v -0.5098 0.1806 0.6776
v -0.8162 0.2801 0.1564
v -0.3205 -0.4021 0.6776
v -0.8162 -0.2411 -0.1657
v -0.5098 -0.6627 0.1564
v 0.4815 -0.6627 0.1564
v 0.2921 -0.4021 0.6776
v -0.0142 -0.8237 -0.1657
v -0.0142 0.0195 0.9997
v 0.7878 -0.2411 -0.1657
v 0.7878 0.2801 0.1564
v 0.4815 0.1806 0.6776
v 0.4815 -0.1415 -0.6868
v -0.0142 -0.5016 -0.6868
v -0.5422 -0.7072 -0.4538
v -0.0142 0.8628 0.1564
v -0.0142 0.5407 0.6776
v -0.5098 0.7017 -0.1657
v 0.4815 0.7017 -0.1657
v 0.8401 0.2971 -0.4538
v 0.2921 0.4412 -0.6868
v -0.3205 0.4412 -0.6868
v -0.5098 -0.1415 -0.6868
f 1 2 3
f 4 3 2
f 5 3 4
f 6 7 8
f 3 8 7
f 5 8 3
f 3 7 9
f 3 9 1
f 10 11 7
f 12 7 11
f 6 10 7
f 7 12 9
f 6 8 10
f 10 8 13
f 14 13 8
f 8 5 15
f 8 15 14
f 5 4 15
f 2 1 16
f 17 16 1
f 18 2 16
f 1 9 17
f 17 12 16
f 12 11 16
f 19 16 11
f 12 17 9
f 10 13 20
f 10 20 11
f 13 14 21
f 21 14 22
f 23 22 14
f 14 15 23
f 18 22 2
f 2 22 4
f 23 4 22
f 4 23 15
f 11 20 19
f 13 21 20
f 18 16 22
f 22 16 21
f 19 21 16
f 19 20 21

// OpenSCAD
polyhedron( points = [[-0.320523204791546, -0.402106263908833, 0.677608689794352], [0.29214730149451, -0.402106263908833, 0.677608689794352], [0.481472899895118, -0.662690594621077, 0.156440028312254], [-0.0141879516605588, -0.823740567911962, -0.165659918305121], [-0.509848803154847, -0.662690594610315, 0.156440028333778], [-0.509848803178246, 0.180578013518584, 0.677608689794352], [0.481472899787612, 0.180578013518584, 0.677608689794352], [0.787808152994891, -0.241056290554518, -0.16565991833097], [-0.0141879517371138, -0.501640621267269, -0.686828579692436], [-0.81618405625893, -0.241056290606746, -0.165659918313784], [-0.8161840562537, 0.280112370962389, 0.156440028383909], [-0.0141879517242385, 0.540696701663695, 0.677608689794352], [0.787808152966046, 0.280112370849817, 0.156440028316686], [0.481472899777148, -0.141521933125471, -0.686828579757612], [-0.509848803202996, -0.14152193319768, -0.686828579697791], [-0.509848802991106, 0.701746674944526, -0.165659918181239], [-0.0141879514175785, 0.862796648191556, 0.156440028500799], [0.481472899777277, 0.701746674869223, -0.165659918235963], [0.292147301362225, 0.44116234420059, -0.68682857964969], [-0.320523204949794, 0.441162344175661, -0.686828579531837], [-0.0141879516326369, 0.0195280401935779, 0.999708636390958], [0.84013646125298, 0.297114868983396, -0.453754868803271], [-0.542189476354515, -0.707203712358896, -0.453754868710433]], faces = [[0, 5, 10, 9, 4], [0, 4, 3, 2, 1], [0, 1, 20], [0, 20, 5], [1, 2, 7, 12, 6], [1, 6, 20], [2, 3, 8, 13, 7], [3, 4, 22], [3, 22, 8], [4, 9, 22], [5, 11, 16, 15, 10], [5, 20, 11], [6, 12, 17, 16, 11], [6, 11, 20], [7, 13, 21], [7, 21, 12], [8, 14, 19, 18, 13], [8, 22, 14], [9, 10, 15, 19, 14], [9, 14, 22], [12, 21, 17], [13, 18, 21], [15, 16, 17, 18, 19], [17, 21, 18]]);
